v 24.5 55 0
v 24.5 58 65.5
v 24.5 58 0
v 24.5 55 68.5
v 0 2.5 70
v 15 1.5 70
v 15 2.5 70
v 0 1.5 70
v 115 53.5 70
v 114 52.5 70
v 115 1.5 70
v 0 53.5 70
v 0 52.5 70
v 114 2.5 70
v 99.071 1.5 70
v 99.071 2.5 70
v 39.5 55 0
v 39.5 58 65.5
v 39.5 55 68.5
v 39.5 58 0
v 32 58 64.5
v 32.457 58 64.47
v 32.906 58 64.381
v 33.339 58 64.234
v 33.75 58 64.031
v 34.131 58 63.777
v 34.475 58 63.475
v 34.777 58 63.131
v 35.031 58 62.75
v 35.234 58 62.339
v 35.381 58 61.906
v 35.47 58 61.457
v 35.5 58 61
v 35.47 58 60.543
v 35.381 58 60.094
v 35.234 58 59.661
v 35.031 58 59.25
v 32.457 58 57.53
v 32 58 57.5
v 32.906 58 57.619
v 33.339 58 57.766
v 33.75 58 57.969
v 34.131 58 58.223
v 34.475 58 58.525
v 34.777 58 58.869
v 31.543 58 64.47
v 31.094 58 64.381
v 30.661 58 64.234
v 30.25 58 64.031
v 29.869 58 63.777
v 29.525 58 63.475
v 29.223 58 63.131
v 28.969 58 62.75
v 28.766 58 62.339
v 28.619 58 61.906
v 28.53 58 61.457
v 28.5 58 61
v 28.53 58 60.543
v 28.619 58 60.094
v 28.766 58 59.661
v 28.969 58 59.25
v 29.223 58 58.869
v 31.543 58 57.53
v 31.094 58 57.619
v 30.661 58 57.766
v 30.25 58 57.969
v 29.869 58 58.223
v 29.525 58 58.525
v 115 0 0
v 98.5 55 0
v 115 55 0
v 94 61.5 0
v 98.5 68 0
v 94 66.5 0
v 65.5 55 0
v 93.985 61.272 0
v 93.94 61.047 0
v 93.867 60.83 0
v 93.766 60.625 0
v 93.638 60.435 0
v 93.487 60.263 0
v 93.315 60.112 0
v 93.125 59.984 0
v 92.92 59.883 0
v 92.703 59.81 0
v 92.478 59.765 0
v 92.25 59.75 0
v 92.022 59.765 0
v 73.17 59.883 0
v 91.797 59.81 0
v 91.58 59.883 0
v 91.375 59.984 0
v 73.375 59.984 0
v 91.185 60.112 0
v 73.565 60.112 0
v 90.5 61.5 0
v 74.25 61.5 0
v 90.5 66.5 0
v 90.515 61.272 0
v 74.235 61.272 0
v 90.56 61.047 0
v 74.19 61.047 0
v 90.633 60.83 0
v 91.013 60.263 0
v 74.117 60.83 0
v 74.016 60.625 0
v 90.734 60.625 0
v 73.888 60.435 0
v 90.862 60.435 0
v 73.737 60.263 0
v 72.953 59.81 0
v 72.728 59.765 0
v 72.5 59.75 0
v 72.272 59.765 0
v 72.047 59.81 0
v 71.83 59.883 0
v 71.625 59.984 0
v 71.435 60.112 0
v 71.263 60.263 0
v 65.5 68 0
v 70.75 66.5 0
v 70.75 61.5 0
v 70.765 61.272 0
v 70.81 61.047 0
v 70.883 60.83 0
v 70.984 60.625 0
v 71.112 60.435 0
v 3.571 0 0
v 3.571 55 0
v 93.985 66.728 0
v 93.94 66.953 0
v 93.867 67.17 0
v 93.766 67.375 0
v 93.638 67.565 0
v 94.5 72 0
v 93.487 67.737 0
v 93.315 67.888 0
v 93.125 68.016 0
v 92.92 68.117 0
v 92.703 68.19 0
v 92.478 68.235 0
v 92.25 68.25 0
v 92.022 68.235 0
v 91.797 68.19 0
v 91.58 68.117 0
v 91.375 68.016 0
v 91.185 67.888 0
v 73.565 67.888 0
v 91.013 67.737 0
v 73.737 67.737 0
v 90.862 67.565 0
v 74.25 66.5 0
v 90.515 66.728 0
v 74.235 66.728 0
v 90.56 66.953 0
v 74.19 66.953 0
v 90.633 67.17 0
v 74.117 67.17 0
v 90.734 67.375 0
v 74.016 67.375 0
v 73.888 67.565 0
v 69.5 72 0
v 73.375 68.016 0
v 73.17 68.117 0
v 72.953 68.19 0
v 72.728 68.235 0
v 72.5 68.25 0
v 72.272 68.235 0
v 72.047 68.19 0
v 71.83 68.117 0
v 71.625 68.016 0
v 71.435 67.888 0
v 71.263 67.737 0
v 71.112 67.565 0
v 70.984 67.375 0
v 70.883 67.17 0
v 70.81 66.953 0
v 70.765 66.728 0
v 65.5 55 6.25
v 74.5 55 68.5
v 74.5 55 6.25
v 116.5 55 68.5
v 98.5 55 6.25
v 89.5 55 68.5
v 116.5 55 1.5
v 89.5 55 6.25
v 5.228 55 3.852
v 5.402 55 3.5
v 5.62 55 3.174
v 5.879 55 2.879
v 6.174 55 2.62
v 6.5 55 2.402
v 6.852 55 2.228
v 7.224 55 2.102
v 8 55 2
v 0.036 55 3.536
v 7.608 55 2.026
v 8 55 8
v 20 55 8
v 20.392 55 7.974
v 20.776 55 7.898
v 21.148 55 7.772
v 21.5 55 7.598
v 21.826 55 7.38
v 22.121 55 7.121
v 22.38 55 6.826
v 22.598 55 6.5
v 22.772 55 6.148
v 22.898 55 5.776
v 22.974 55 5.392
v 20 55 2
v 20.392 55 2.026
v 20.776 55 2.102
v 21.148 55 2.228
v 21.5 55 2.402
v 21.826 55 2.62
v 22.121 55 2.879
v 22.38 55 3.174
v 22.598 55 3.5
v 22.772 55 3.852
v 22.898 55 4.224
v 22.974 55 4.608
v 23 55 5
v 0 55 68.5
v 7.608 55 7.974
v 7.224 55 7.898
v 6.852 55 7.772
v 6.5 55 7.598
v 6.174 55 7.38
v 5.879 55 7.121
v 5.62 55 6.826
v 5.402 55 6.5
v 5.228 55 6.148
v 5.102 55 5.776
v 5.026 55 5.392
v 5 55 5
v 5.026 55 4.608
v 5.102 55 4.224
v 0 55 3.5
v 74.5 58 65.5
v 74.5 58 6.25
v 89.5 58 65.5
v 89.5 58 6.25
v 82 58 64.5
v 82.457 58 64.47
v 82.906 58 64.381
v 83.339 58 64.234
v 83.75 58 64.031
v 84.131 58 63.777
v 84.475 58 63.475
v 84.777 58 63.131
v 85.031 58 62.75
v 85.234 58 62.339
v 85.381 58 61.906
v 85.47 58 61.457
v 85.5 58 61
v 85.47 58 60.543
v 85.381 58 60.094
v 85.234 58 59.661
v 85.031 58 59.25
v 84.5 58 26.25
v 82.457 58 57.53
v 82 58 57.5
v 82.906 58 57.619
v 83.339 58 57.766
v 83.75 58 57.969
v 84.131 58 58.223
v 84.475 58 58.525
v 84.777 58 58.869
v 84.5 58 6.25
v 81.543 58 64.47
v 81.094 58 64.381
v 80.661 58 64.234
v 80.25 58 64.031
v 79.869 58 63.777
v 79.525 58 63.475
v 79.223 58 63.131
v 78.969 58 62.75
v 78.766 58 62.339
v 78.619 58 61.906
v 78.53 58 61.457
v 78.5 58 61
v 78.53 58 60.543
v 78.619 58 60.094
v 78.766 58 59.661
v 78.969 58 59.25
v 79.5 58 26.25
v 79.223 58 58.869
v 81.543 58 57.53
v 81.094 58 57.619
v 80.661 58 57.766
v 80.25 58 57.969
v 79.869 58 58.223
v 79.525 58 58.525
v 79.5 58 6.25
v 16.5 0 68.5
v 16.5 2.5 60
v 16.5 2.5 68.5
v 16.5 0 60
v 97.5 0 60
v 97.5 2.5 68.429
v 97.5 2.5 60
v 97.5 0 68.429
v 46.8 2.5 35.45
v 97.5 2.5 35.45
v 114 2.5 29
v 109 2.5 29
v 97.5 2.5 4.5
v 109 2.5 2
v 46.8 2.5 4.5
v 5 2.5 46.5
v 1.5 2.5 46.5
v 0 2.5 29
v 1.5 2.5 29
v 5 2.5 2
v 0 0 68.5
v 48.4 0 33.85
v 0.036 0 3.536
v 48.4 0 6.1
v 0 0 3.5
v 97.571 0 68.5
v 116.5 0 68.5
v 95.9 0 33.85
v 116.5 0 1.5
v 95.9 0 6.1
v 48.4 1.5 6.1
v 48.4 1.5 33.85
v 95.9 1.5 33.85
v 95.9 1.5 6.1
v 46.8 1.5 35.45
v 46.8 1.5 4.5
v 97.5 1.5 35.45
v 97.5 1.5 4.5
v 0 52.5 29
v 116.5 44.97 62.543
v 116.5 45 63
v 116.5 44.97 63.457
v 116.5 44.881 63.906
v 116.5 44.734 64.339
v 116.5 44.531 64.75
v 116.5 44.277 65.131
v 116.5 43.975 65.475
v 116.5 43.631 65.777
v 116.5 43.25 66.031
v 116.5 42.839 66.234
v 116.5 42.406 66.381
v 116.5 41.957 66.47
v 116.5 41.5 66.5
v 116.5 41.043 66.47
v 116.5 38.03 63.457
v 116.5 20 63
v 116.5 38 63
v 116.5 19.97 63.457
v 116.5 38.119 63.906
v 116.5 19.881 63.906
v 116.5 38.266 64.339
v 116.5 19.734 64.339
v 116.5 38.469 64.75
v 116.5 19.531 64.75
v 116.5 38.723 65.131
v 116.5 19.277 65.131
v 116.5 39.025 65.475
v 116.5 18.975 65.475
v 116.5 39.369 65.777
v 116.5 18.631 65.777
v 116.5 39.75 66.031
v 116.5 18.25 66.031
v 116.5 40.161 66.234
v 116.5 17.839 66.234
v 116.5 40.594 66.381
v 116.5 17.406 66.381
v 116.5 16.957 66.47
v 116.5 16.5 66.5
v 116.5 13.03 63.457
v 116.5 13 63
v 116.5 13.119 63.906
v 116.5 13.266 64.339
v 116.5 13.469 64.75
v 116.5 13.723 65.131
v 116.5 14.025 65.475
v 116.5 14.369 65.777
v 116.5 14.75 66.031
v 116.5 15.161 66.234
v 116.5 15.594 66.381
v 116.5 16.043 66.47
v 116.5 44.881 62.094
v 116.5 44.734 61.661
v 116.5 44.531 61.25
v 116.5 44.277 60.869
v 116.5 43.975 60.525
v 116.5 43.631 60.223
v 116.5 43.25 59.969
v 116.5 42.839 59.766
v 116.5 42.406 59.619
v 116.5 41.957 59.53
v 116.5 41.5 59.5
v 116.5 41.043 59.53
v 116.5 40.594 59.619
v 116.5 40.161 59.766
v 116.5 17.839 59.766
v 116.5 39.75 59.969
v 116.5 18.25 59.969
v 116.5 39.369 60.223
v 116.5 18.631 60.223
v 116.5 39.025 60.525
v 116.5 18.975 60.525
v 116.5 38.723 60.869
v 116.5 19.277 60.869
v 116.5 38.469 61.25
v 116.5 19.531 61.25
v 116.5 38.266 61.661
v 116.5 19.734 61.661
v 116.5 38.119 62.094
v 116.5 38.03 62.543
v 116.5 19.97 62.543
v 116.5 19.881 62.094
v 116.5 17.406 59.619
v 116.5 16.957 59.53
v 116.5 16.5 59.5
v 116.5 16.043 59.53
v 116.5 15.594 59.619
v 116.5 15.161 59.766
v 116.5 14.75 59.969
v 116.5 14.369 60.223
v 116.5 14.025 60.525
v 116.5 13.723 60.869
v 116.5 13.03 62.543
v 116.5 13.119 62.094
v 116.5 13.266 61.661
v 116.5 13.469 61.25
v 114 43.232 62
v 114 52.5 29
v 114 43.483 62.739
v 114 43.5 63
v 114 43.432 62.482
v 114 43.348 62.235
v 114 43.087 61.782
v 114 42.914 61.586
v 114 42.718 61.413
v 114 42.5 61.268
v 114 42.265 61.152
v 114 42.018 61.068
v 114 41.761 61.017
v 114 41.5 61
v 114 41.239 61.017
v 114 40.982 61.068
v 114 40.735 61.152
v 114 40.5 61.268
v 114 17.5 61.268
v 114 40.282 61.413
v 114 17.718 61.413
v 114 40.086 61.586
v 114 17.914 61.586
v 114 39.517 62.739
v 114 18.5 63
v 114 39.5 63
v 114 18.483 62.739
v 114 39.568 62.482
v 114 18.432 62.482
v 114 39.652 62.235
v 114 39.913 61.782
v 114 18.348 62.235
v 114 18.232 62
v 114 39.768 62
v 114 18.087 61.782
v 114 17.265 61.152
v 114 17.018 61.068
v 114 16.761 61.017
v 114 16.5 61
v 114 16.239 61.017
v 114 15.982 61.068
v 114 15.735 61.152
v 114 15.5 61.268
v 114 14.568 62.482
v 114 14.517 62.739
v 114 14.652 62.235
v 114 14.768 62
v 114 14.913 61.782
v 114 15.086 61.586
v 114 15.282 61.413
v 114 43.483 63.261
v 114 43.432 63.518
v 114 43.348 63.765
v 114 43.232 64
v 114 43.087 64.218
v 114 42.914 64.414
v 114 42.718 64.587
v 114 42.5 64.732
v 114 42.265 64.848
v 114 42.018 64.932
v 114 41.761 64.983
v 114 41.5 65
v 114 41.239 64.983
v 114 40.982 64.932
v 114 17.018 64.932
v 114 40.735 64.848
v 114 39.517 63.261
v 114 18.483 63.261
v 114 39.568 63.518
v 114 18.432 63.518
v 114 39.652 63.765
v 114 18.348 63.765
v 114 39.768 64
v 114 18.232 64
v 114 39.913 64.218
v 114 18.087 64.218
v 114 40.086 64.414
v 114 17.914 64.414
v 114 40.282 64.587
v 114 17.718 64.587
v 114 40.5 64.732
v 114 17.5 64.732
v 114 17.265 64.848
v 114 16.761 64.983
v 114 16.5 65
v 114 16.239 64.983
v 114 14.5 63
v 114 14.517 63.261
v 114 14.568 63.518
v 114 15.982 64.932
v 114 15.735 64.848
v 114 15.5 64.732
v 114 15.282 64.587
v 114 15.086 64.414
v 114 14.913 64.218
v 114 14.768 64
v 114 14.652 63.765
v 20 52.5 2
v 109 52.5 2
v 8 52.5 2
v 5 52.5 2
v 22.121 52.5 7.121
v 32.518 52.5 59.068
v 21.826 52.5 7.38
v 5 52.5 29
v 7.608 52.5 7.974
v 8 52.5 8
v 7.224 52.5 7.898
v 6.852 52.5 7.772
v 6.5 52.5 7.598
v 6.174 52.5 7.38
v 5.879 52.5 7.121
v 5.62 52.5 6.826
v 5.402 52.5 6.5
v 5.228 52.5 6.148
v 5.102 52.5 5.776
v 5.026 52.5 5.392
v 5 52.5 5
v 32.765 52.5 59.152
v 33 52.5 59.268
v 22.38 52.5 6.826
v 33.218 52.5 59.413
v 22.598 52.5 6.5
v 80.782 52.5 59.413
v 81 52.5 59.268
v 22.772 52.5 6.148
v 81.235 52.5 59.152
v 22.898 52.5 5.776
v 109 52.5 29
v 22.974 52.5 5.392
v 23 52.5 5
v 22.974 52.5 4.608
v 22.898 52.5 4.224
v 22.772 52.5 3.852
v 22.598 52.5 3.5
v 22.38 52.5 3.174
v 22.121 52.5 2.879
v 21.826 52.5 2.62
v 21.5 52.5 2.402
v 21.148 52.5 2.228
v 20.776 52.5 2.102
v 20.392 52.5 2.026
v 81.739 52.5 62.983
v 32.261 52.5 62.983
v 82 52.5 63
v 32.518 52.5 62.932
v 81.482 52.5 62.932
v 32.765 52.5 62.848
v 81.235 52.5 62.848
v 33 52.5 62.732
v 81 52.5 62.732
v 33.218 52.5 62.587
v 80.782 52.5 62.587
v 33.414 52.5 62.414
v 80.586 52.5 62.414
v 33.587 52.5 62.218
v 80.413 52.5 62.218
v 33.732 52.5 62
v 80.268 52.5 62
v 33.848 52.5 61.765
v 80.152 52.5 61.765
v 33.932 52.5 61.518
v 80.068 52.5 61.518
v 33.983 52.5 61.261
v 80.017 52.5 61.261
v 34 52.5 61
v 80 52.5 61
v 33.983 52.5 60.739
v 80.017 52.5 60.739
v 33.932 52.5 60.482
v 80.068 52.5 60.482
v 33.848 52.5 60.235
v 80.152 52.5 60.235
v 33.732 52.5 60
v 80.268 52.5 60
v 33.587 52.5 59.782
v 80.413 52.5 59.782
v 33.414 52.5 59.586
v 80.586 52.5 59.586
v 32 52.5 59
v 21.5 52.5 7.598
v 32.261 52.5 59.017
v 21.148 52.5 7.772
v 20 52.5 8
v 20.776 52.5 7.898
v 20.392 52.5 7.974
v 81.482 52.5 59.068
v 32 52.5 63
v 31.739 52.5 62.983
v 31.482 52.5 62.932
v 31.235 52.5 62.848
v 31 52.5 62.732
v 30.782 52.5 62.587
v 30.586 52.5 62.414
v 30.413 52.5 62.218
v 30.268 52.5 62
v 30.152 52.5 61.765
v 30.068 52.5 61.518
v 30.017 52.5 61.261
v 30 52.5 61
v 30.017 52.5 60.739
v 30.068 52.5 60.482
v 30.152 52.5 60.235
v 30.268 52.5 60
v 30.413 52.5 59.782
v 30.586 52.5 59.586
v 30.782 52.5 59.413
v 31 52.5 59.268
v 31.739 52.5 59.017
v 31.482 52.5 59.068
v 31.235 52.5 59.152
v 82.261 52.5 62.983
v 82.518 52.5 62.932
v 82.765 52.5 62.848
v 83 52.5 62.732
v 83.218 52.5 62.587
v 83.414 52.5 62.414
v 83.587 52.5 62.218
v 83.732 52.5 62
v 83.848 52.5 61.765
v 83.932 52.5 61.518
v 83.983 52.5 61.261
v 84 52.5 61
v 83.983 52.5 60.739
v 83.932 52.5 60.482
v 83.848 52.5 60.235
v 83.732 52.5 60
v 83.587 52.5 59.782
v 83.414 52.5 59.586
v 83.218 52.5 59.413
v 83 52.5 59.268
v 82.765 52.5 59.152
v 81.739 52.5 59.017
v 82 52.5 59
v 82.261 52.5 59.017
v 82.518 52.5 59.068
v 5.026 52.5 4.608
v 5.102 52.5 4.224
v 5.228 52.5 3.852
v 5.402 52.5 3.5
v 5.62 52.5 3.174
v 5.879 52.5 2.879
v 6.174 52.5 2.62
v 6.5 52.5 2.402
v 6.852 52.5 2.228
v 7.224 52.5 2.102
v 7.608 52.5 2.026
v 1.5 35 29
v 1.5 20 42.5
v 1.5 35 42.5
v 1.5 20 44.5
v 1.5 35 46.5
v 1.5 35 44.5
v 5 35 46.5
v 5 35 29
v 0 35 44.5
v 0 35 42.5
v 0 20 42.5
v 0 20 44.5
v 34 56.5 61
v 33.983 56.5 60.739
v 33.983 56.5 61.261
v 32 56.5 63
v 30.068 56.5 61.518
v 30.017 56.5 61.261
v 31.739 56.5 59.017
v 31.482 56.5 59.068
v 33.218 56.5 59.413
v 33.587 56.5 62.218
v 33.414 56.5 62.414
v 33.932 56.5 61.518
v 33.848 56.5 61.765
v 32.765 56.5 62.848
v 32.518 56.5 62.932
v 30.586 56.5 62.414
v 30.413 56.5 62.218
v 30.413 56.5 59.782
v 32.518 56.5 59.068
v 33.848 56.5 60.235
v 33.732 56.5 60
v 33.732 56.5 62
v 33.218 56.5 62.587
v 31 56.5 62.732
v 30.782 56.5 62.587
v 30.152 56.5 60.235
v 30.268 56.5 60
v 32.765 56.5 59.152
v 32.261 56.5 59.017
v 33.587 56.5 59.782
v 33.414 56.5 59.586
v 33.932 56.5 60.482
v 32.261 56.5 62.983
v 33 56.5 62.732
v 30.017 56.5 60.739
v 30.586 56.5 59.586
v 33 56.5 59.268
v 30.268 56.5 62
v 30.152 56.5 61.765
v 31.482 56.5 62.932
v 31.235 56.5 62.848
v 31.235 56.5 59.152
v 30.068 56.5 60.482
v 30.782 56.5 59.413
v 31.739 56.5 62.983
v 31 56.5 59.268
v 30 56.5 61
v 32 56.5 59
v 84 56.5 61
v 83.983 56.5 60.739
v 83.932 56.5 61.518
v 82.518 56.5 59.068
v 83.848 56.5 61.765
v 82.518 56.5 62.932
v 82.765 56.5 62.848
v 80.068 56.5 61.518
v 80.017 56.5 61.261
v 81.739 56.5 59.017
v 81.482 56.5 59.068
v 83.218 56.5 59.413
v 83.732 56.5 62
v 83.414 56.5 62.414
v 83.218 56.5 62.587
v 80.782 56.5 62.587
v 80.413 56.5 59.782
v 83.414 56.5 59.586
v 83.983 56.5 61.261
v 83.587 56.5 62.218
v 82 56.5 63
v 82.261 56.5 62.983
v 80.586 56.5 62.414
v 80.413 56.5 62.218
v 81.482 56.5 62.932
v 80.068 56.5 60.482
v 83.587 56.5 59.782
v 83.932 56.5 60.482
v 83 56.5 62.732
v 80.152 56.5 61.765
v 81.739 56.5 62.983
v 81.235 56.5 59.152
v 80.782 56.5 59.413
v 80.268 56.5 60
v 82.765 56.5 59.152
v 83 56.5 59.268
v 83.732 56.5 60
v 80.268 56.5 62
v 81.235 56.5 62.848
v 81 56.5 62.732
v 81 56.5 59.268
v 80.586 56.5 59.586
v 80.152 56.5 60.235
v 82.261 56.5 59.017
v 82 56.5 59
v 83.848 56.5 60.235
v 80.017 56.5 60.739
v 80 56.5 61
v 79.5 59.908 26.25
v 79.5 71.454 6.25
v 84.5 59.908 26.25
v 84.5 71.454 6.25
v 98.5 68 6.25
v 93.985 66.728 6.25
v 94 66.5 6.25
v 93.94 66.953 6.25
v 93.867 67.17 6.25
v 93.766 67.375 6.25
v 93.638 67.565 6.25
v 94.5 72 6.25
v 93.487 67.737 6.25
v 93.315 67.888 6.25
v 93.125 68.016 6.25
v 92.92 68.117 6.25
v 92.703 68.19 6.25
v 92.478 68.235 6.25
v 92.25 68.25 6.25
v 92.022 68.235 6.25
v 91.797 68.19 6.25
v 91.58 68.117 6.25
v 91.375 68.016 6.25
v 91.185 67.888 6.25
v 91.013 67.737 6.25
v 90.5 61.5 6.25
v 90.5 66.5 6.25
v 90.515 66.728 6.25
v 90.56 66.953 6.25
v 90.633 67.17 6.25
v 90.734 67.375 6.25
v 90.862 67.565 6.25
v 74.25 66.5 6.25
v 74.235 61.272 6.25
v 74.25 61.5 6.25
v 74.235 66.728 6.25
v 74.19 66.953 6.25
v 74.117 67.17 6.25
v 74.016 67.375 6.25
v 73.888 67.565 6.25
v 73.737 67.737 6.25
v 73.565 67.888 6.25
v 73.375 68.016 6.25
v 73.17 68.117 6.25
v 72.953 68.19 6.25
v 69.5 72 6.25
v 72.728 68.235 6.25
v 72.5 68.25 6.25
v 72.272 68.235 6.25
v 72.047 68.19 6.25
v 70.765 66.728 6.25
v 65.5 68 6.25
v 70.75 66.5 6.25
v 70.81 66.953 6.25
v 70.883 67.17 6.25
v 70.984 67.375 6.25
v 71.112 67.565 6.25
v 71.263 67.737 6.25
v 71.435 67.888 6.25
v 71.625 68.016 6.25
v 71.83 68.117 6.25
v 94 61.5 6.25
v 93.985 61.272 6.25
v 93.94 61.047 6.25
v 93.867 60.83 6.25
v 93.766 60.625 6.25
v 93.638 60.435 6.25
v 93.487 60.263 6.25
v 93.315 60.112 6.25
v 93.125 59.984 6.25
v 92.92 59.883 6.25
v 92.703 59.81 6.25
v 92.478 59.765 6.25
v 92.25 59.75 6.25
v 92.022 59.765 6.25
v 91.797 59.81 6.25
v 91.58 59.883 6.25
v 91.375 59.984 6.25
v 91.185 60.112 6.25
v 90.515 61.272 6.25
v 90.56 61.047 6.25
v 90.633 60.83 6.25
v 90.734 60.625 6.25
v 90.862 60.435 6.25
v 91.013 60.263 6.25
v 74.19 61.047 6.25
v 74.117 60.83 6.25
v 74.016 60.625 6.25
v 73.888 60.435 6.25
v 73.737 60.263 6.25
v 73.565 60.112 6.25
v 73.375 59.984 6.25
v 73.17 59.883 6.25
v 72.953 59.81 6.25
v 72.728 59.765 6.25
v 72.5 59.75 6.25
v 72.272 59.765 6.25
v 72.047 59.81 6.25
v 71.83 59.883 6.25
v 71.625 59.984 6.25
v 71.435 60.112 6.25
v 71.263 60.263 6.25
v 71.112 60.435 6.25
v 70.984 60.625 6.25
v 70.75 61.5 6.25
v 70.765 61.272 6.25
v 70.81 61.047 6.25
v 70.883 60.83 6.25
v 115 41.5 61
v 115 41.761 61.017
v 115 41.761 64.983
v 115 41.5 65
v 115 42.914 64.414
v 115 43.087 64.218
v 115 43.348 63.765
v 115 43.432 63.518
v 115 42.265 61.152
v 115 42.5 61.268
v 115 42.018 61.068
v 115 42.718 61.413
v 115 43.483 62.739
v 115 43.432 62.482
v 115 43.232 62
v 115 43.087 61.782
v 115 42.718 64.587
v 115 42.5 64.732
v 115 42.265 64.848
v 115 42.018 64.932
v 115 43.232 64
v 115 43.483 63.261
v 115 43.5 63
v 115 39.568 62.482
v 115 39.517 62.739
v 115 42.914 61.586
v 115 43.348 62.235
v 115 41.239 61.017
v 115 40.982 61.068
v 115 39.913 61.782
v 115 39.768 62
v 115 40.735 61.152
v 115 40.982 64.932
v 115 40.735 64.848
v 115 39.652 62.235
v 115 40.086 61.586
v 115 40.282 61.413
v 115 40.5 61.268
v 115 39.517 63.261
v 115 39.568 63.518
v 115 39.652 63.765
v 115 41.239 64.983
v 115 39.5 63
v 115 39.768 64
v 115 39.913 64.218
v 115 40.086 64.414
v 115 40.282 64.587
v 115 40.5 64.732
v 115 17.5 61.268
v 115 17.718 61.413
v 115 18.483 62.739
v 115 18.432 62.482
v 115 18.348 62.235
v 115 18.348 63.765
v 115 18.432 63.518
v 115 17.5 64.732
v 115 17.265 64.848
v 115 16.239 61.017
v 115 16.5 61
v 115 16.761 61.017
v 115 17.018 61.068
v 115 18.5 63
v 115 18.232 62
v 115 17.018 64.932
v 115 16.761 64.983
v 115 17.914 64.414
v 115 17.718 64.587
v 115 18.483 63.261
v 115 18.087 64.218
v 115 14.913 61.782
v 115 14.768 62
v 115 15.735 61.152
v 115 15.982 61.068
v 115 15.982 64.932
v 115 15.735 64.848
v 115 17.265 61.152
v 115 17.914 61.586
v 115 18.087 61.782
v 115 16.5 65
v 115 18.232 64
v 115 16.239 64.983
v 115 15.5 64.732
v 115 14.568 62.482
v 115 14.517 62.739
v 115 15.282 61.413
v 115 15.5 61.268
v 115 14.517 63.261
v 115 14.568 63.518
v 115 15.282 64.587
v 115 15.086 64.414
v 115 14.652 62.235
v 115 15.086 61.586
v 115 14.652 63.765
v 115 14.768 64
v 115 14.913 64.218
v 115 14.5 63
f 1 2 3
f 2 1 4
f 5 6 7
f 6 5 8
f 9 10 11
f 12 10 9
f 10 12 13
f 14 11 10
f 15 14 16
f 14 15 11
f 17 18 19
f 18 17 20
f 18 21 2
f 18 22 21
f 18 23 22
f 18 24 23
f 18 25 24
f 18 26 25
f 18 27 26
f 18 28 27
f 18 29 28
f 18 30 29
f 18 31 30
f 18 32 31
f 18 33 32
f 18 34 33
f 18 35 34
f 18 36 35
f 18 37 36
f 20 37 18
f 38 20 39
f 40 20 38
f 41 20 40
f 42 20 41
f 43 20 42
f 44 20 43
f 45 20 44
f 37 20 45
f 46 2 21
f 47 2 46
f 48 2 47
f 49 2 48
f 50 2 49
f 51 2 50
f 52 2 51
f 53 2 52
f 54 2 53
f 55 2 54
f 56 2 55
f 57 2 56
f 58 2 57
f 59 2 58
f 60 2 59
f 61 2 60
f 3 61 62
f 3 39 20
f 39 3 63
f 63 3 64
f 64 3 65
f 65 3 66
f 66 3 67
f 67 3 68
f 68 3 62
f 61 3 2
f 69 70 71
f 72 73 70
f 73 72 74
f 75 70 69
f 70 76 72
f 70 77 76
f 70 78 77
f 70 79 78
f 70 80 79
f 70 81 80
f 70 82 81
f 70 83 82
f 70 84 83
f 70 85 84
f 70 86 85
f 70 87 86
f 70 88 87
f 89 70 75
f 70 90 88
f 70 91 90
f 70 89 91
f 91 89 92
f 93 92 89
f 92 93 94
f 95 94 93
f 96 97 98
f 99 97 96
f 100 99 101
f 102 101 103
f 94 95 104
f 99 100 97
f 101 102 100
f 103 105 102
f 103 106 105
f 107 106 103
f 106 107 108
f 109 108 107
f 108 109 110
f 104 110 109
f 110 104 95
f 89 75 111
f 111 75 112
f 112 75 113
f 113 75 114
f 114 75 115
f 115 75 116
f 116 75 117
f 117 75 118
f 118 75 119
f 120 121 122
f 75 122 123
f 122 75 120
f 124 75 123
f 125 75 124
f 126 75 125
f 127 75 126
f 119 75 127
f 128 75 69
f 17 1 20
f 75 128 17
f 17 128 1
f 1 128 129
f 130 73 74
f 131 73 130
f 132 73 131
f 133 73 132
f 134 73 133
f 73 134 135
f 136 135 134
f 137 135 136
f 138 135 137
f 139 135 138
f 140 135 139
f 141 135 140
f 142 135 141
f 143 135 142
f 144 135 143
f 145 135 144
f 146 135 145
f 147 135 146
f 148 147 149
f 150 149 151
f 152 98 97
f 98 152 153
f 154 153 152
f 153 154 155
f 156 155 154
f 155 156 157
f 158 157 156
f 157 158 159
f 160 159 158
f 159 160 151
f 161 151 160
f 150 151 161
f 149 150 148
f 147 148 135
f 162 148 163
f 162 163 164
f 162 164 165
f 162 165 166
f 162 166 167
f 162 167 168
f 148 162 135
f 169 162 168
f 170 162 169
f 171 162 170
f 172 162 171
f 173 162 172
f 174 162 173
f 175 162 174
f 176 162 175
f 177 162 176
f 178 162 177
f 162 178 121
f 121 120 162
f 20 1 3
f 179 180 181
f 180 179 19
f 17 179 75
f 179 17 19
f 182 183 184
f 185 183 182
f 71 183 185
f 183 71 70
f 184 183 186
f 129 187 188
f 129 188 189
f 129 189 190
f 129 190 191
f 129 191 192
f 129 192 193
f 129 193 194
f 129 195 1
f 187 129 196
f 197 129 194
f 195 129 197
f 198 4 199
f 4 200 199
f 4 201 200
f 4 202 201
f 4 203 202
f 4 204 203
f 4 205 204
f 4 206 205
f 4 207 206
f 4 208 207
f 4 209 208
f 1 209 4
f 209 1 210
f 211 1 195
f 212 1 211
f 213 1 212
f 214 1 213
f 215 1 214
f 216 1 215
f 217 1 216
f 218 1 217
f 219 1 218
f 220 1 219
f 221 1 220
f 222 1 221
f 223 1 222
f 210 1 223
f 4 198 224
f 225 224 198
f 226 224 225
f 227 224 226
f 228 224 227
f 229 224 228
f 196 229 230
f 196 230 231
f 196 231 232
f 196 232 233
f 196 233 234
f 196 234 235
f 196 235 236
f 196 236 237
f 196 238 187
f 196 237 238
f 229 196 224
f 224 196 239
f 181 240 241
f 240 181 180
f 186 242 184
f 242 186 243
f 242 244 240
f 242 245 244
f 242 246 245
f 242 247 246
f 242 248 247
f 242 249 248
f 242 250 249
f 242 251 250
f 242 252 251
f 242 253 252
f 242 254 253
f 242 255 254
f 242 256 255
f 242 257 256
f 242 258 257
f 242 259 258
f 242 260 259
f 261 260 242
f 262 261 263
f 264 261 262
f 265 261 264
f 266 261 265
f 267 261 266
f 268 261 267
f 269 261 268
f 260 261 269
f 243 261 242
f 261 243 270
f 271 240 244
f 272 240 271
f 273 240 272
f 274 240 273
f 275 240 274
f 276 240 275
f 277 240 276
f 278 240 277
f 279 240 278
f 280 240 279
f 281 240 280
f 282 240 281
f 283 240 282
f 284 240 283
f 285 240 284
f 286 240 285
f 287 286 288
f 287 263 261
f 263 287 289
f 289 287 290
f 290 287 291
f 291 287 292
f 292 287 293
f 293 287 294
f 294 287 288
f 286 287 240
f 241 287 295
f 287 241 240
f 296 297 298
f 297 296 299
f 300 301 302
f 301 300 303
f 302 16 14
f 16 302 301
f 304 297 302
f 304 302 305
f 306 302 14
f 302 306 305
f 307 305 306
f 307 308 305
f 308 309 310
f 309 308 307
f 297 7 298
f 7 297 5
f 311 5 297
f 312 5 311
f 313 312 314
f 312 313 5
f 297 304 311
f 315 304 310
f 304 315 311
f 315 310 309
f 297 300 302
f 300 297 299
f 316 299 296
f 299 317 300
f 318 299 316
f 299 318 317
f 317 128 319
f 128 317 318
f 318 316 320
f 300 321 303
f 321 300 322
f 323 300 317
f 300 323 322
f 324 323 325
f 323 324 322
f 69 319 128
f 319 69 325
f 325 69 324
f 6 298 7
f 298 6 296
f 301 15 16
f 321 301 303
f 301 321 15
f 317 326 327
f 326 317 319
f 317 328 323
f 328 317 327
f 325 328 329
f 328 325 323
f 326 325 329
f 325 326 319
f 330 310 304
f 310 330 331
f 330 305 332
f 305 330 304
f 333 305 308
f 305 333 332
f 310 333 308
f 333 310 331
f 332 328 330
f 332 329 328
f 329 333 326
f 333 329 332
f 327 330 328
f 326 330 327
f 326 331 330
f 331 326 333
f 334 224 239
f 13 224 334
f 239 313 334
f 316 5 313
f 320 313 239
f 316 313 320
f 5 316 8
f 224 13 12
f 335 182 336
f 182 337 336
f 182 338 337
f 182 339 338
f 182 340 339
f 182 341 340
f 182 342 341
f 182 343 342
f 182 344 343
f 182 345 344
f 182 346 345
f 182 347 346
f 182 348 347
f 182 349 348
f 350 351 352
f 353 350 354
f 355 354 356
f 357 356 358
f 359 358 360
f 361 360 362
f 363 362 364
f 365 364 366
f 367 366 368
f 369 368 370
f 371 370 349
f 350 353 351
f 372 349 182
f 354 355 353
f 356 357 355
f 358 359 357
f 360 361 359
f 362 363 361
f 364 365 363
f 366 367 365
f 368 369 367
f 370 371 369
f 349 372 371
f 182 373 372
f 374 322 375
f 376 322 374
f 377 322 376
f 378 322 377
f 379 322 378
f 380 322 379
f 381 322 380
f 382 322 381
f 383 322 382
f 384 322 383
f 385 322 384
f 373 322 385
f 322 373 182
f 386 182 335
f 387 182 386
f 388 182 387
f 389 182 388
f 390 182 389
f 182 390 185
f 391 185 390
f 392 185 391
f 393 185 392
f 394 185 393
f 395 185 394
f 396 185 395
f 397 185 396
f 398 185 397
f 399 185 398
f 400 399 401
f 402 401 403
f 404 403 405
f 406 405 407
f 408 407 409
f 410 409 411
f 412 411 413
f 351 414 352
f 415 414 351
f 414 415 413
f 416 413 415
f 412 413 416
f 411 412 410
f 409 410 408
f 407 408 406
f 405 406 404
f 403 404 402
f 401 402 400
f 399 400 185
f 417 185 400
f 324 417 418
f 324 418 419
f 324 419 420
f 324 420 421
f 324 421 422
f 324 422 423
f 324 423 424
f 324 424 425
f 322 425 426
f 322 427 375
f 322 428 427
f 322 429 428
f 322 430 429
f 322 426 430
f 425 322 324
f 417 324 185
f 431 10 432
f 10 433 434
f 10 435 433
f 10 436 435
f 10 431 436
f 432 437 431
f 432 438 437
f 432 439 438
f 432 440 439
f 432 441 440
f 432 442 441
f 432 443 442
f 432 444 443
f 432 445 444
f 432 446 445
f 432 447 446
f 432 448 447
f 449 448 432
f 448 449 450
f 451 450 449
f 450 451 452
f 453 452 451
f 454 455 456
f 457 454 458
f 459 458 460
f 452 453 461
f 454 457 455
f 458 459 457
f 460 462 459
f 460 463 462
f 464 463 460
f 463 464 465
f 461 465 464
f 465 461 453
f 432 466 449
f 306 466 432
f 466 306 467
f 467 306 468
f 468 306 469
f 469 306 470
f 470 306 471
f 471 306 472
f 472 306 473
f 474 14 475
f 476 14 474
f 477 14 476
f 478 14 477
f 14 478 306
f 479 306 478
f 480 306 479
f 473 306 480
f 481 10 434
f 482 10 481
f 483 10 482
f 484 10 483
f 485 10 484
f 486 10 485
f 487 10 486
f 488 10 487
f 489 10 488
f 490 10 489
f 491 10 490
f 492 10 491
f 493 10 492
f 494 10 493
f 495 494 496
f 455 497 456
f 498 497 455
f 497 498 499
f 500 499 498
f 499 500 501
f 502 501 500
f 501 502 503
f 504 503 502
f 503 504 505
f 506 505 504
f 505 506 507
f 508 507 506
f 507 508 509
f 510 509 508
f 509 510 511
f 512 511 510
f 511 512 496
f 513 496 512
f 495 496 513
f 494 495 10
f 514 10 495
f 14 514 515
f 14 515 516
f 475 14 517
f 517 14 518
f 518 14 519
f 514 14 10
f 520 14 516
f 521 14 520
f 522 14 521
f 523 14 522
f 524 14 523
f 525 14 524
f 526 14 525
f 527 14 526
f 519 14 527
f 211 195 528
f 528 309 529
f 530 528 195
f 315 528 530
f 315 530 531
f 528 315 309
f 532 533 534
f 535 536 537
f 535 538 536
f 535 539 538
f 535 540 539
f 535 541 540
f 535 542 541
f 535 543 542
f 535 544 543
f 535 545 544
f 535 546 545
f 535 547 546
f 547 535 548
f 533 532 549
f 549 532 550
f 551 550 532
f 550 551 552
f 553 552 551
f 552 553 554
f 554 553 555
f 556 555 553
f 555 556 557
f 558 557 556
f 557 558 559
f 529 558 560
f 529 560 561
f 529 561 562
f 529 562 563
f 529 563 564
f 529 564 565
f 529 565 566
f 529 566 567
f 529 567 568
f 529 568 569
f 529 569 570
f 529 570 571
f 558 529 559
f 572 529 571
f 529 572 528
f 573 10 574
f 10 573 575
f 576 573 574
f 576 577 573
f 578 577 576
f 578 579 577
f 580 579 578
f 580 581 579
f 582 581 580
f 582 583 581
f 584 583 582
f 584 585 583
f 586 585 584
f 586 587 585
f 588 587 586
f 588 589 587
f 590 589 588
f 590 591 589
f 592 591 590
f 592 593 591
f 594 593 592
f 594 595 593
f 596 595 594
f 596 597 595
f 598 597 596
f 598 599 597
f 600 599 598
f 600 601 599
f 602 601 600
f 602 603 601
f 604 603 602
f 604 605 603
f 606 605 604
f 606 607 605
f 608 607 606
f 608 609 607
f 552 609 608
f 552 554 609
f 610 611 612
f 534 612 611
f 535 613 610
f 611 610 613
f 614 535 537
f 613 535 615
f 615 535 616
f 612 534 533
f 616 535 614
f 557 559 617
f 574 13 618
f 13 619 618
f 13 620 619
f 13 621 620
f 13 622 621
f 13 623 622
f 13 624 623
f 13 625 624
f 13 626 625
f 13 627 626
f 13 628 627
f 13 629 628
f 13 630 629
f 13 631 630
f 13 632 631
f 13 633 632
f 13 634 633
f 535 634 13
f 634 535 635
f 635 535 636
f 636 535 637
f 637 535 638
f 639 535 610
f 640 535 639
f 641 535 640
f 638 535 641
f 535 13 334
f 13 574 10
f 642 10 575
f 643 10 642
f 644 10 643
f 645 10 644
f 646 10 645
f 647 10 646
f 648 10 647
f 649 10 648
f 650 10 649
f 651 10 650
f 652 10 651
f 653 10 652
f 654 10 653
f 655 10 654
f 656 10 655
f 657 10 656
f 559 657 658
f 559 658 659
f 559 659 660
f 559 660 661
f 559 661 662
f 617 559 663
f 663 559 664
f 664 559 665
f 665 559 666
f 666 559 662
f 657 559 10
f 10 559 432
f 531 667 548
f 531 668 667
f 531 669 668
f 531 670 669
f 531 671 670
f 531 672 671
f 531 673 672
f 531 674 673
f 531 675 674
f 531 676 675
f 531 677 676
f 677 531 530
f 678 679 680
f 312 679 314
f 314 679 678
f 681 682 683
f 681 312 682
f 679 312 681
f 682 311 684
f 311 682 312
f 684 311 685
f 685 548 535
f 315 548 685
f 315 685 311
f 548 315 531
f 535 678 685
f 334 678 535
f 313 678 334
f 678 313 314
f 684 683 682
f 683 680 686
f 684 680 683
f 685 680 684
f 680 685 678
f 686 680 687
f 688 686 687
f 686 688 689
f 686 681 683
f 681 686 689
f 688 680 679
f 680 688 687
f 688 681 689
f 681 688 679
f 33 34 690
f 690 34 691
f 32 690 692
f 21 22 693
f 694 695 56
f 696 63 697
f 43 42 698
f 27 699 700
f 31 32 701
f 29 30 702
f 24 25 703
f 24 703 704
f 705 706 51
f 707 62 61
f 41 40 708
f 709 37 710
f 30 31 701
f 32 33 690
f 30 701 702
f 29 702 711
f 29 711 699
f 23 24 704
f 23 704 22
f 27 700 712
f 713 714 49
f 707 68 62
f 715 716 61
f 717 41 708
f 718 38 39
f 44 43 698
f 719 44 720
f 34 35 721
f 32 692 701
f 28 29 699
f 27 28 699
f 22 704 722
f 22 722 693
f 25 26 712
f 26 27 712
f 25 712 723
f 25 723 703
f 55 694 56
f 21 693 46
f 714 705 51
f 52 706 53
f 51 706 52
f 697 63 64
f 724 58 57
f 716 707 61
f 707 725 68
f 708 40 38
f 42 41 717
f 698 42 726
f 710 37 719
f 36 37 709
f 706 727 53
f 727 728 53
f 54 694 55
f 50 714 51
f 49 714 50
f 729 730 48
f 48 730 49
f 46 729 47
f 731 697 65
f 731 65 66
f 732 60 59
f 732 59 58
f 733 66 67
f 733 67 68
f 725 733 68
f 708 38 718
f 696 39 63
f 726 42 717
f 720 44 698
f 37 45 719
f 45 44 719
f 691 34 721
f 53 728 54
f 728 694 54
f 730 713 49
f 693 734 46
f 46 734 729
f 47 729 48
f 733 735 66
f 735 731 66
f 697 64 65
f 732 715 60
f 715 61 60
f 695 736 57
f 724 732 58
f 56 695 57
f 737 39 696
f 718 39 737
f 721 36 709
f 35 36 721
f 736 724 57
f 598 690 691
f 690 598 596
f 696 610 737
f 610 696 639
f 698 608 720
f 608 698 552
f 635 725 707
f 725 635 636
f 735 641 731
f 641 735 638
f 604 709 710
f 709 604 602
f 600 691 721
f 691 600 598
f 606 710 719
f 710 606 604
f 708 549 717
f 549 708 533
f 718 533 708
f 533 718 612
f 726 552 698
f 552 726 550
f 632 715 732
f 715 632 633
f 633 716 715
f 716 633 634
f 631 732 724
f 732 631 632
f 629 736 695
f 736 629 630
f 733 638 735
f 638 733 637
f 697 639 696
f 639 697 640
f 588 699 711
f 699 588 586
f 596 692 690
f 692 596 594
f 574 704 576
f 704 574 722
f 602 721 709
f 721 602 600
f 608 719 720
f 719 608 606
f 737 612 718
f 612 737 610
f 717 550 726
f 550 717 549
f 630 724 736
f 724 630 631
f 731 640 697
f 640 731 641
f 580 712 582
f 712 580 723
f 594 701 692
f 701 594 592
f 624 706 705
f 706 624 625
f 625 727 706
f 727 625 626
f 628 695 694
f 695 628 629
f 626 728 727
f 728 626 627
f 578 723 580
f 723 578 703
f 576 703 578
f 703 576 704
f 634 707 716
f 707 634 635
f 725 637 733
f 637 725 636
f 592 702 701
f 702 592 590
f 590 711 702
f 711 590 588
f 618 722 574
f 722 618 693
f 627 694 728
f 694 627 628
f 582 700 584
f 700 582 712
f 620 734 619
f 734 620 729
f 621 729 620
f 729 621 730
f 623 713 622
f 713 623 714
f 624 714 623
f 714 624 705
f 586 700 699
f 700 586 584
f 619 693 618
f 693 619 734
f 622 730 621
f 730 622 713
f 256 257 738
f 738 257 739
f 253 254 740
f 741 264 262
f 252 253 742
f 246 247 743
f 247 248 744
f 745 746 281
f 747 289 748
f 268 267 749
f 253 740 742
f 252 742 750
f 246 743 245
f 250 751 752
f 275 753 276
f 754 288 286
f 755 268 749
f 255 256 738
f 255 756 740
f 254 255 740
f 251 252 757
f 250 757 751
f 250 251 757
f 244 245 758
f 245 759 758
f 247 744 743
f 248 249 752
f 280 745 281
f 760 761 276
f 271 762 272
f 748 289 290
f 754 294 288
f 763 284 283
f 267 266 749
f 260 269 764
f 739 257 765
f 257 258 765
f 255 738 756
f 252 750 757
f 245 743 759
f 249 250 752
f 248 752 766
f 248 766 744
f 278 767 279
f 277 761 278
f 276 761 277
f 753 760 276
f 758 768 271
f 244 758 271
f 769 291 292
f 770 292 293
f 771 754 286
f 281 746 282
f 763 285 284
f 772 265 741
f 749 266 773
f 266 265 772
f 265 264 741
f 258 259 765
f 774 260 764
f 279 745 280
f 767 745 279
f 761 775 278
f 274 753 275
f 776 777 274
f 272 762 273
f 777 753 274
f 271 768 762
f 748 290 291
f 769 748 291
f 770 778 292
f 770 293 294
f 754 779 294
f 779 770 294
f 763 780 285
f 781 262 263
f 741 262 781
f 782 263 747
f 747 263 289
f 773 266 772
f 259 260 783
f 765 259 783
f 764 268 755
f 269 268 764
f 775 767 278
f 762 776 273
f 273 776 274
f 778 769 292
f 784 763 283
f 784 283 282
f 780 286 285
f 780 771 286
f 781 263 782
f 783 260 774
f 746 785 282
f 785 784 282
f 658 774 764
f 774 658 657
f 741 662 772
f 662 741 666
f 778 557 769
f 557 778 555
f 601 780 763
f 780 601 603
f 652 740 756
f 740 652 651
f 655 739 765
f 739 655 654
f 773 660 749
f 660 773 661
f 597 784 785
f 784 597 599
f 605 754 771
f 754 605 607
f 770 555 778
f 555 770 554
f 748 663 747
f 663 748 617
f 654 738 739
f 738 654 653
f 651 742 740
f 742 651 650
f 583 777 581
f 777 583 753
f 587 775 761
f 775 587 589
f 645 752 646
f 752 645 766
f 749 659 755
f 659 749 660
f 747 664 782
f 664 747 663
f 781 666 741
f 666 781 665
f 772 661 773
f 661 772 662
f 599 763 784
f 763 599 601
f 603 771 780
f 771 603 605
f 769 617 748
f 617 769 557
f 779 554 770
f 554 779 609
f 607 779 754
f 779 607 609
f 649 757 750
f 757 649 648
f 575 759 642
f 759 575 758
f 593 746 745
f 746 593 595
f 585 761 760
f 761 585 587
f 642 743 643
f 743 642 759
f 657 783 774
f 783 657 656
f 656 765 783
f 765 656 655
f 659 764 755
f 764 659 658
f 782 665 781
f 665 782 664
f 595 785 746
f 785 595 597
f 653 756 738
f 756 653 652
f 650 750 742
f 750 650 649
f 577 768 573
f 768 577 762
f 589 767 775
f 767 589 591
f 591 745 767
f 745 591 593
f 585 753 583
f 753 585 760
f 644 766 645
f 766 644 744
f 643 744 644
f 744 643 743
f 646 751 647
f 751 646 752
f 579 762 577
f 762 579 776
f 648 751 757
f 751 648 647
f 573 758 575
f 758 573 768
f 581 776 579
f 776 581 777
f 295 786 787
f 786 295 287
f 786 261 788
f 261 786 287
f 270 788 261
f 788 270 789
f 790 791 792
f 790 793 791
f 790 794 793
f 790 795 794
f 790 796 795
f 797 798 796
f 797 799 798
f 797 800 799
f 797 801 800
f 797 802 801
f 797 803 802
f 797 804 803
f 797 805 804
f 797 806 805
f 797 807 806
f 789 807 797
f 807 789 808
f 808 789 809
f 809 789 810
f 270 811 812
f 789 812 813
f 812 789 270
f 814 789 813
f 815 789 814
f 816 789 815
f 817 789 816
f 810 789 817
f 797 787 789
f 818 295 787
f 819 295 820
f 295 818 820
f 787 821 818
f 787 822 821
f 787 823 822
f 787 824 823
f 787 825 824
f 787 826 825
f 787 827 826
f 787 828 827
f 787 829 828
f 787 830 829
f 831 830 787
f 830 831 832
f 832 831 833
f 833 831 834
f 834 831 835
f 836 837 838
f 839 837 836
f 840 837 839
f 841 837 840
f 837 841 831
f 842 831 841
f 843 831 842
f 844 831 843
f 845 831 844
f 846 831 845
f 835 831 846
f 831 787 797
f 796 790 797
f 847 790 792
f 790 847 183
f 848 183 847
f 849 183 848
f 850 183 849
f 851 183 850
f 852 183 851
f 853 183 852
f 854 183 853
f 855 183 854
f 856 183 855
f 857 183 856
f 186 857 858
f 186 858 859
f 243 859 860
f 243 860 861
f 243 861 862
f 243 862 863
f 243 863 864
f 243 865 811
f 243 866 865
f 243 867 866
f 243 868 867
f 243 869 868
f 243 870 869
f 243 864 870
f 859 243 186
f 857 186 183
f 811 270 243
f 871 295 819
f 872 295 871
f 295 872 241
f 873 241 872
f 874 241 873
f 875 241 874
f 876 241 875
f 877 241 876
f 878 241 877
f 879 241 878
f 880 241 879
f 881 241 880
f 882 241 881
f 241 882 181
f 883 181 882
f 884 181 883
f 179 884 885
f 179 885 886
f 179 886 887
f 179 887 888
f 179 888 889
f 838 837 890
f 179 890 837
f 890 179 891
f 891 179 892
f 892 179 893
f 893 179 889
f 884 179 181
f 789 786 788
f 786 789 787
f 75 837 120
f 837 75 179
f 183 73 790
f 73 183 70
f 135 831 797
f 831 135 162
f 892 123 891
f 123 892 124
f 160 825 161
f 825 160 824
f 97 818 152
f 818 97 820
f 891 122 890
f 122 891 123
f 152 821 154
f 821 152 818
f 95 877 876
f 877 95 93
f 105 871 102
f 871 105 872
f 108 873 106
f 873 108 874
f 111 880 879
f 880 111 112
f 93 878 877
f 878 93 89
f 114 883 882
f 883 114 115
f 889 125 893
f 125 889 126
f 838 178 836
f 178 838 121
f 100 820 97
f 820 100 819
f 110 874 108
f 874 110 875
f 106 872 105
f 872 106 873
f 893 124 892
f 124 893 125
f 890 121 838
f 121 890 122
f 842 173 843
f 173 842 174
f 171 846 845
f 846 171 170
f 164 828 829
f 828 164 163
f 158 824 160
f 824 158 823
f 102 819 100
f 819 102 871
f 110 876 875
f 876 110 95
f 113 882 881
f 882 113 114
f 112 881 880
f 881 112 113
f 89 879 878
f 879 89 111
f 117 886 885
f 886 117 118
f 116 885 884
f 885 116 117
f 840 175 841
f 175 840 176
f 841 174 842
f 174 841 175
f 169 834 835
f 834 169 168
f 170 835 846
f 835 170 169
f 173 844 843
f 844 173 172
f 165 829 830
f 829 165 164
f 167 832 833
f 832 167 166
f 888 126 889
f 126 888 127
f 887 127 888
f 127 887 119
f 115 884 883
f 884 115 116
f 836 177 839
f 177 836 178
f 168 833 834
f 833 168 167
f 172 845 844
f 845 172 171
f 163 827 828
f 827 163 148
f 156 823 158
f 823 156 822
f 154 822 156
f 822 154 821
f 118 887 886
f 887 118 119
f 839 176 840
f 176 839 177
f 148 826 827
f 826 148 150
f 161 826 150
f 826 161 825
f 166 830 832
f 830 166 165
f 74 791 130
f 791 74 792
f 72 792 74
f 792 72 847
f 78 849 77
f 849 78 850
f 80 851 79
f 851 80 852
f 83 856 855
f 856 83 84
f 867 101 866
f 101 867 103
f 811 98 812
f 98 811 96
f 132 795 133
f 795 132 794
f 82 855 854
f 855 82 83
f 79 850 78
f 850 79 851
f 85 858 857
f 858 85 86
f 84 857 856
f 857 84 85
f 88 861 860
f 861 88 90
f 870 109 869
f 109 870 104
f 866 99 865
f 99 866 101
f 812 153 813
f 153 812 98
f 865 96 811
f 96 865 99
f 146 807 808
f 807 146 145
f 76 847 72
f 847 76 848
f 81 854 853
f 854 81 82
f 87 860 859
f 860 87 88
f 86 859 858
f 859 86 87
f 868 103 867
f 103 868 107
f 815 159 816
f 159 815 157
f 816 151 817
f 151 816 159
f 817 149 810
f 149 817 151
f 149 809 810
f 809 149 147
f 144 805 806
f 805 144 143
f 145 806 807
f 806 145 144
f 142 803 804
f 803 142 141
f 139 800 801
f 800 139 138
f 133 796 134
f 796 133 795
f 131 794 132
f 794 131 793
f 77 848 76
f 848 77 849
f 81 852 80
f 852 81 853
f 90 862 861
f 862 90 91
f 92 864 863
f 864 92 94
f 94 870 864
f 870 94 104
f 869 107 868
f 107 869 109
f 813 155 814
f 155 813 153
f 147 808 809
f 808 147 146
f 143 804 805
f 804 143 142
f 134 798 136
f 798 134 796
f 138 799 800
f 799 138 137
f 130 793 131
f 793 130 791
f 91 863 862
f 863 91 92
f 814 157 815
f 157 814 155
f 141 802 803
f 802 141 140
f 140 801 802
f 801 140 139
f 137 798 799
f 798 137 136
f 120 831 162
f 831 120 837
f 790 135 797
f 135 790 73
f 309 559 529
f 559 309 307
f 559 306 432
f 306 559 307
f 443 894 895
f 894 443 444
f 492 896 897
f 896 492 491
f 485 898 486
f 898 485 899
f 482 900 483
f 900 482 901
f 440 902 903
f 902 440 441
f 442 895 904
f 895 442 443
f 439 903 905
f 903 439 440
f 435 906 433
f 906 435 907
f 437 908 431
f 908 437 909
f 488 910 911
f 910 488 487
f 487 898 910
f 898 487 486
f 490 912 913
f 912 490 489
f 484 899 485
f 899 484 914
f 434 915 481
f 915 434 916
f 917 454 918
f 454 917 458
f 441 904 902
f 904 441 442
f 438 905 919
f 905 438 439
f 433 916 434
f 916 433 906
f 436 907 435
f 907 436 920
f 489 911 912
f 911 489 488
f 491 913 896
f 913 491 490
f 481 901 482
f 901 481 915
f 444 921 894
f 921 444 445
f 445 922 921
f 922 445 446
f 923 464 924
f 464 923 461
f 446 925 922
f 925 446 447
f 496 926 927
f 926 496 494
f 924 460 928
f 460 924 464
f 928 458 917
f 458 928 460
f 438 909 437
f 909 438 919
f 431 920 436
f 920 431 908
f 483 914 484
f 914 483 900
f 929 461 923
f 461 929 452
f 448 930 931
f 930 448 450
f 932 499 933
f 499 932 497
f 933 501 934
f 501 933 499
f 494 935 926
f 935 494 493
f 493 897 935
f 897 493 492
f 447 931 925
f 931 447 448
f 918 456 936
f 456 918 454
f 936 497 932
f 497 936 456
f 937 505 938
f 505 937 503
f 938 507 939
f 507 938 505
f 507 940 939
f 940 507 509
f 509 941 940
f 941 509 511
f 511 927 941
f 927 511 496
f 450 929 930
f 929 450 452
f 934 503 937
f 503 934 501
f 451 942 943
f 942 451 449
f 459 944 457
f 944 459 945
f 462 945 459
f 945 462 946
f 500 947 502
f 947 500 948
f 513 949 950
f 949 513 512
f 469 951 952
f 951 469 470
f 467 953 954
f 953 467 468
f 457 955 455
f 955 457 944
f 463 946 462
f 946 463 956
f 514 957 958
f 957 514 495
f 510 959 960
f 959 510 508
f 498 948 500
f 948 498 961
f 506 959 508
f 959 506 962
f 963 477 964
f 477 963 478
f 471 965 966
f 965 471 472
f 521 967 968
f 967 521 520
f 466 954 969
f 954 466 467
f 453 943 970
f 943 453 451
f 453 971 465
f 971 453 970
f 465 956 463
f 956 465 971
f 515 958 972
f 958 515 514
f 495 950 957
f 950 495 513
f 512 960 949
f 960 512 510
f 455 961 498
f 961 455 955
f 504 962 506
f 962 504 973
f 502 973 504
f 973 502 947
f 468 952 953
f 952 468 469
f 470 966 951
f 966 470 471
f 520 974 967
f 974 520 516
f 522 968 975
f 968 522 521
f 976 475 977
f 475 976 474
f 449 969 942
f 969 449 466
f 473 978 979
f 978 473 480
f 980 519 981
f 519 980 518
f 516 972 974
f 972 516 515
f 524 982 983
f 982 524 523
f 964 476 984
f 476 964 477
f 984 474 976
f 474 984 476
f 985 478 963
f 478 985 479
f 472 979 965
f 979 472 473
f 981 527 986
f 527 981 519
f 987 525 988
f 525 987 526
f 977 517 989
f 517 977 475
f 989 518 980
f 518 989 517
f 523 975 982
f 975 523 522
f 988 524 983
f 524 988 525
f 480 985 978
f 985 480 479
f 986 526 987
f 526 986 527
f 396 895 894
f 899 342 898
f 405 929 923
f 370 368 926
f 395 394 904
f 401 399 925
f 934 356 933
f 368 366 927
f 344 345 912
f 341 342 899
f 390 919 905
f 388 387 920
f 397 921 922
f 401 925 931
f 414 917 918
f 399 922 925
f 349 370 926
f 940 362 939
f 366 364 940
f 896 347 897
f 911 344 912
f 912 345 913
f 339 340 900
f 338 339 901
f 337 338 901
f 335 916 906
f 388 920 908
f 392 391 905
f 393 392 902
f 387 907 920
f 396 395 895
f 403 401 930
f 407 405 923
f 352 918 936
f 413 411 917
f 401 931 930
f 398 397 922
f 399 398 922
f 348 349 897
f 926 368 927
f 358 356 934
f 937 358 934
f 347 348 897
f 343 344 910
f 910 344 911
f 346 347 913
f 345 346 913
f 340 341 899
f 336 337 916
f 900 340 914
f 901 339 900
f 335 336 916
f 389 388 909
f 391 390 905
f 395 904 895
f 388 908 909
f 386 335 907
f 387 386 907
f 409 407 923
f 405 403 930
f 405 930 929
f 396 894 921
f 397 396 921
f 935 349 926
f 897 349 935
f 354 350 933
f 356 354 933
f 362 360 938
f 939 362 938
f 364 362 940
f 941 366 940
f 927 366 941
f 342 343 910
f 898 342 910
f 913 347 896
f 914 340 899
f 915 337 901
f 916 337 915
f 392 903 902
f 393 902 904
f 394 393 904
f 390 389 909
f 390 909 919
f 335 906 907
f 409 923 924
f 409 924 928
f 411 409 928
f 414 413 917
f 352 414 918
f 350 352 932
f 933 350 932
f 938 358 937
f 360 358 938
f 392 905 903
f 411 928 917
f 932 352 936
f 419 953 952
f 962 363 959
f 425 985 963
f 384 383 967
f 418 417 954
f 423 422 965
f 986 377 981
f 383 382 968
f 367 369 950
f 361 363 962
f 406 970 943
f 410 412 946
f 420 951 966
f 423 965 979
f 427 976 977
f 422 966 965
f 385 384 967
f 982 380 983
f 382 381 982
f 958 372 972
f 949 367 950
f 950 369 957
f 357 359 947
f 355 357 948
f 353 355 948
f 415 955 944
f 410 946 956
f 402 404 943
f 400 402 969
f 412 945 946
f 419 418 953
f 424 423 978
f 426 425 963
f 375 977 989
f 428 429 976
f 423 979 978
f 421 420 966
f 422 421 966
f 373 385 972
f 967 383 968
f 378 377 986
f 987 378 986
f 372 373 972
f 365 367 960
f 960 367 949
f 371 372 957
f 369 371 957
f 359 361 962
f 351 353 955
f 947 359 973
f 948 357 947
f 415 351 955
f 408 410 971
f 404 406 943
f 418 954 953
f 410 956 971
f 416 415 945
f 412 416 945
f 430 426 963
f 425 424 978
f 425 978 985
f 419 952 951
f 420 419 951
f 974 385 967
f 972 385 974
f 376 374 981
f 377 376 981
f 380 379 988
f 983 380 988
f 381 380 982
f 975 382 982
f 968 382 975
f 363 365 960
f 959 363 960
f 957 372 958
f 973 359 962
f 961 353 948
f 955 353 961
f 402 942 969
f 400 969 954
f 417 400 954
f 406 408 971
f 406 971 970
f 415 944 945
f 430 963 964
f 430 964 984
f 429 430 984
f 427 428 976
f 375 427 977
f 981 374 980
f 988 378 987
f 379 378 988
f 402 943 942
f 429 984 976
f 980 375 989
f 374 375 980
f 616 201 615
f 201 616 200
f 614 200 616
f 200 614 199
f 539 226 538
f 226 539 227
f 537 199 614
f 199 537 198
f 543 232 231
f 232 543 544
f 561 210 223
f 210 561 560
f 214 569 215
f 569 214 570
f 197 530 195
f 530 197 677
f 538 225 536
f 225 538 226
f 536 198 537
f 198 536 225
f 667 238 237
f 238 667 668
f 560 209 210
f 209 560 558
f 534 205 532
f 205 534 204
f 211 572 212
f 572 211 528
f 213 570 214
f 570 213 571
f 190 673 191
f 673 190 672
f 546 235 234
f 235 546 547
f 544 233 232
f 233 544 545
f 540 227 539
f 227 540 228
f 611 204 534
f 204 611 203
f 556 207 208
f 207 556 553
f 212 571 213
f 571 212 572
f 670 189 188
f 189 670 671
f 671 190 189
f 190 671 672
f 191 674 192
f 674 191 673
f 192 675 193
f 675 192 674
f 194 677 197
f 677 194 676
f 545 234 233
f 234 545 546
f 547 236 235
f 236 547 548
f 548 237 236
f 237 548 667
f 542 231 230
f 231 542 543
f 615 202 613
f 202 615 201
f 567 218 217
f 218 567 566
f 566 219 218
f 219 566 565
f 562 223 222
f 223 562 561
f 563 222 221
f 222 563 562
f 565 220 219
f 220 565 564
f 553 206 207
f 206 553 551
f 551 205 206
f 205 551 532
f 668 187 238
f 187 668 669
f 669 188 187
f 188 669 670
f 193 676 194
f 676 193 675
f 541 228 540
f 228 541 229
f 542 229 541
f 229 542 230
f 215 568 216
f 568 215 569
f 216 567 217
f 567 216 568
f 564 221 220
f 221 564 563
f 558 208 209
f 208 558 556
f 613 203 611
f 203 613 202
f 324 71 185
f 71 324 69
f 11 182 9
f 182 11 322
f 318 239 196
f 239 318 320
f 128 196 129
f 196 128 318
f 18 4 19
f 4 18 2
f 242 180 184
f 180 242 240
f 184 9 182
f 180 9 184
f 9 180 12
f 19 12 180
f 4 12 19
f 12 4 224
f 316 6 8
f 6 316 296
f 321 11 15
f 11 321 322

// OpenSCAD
cover_height = 70; // mm

bottom_thickness = 2; //mm
wall_thickness = 2.5; //mm

vent_tab_bottom = 13.5; //mm measured bottom edge of PSU to vent hole;
vent_tab_height = 2; //mm measured opening of the vents (Actual was 2.99, but I want some 'room').
vent_tab_width = 15; // mm Can be smaller than the width of the vent on the PSU.
vent_cutout = 1; // 1 = yes, 0 = no.

// PSU dimensions
psu_width = 114; //mm
psu_depth = 50; //mm
psu_height = 215; //mm
psu_steel_thickness = 1.5; //mm measured thickness of the steel on the side by the frame.

psu_vent_from_edge = 16.5; //mm mesured along the width - how far the PSU vent holes start from the edge of the PSU.
psu_vent_from_bottom = 31; // mm measured from the bottom edge of the PSU.
psu_mount_hole_from_bottom = 30; //mm measured from bottom edge of the PSU to bottom of the hole.

// IEC Socket cutout
iec_socket_width = 47.5; //mm
iec_socket_height = 27.75; //mm

iec_socket_lip = 1.6; // mm - The amount of 'overhang' on the front 'lip' of the IEC socket. Used to visually line up the IEC with the cutout for the ventilation.
iec_socket_lip_wall_thickness = 1.5; //mm  wall-thickness required for socket to 'snap' into place.

// How high up the "shelf" that the PSU sits on is from the bottom of the shroud.
shelf_height = 27;

// Support bracket.
module support_bracket() {
    color("purple") {
        intersection() {
            translate([14, 0, 6.25]) cube([5, 17, 20]); 
            translate([14, 0, (19 / 2)+ 6.25]) rotate([180, 0, 0]) rotate([0, 90, 0]) cylinder(h = 6.25, r = 19, $fn = 3);
        }
        
        difference() {
            cube([33, 17, 6.25]);
            
            translate([7,0,0])
            hull() {
                translate([0, 6.5, 0]) cylinder(r = 1.75, h = 6.25, $fn = 48);
                translate([0, 11.5, 0]) cylinder(r = 1.75, h = 6.25, $fn = 48);
            }
            
            translate([26.75, 0, 0])
            hull() {
                translate([0, 6.5, 0]) cylinder(r = 1.75, h = 6.25, $fn = 48);
                translate([0, 11.5, 0]) cylinder(r = 1.75, h = 6.25, $fn = 48);
            }
            translate([0, 13, 0]) rotate([0, 0, 45]) cube([10, 10, 6.25]);
            translate([33, 13, 0]) rotate([0, 0, 45]) cube([10, 10, 6.25]);
        }
    }
}

difference() {
    union() {
        difference() {
            // Main cubic area of the base.
            color("blue")
            cube([psu_width + wall_thickness, psu_depth + (wall_thickness * 2), cover_height]);
            
            // Create the main hollow for the PSU.
            color("red")
            translate([0, wall_thickness, bottom_thickness])
            cube([psu_width, psu_depth, psu_height]);
            
            if (vent_cutout == 1) {
                // Create the cutout for the PSU vents on the width.
                color("red")
                translate([psu_vent_from_edge, 0, bottom_thickness + shelf_height + psu_vent_from_bottom])
                cube([psu_width - (psu_vent_from_edge * 2), wall_thickness, cover_height - (bottom_thickness + shelf_height + psu_vent_from_bottom)]);
                
                translate([psu_vent_from_edge - 1.5, 0, cover_height]) rotate([0, 45, 0]) cube([5, wall_thickness, 5]);
                translate([psu_width - psu_vent_from_edge - 5.5, 0, cover_height]) rotate([0, 45, 0]) cube([5, wall_thickness, 5]);
            }
            
            // IEC Cutout.
            color("green") {
                translate([psu_width - psu_vent_from_edge - iec_socket_lip - iec_socket_width, 0, bottom_thickness + iec_socket_lip + 2.5])
                cube([iec_socket_width, wall_thickness, iec_socket_height]);
                // Ensure the wall thickness behind the IEC lip is only as thick as specified.
                translate([psu_width - psu_vent_from_edge - (iec_socket_lip  * 2)- iec_socket_width, 
                                   iec_socket_lip_wall_thickness, 
                                   bottom_thickness + 2.5])
                 cube([iec_socket_width + (iec_socket_lip * 2), wall_thickness, iec_socket_height + (iec_socket_lip * 2)]);
            }
        }

        // Add the wall beneath the PSU on the frame-side.
        translate([0, wall_thickness, bottom_thickness]) 
        cube([wall_thickness * 2, psu_depth, shelf_height]);

        // Shelf on the Socket side.
        translate([psu_width - (wall_thickness * 2), wall_thickness, bottom_thickness])
        cube([wall_thickness * 2, psu_depth, shelf_height]);

        // Add the partial wall and vent tab
        color("orange") {
        translate([psu_steel_thickness, wall_thickness, bottom_thickness + shelf_height])
        cube([(wall_thickness * 2) - psu_steel_thickness, (psu_depth / 2) + (vent_tab_width / 2), vent_tab_bottom + (2 * vent_tab_height)]);
        translate([0, wall_thickness + (psu_depth / 2) - (vent_tab_width / 2), bottom_thickness + shelf_height + vent_tab_bottom])
        cube([psu_steel_thickness, vent_tab_width, vent_tab_height]);
            
        } 

        // Vertical Support Columns (mount holes are typically 50mm on center, centered in the PSU, with radius 2)
        color("black") {
            // Supports are 15mm wide: 7.5's derive from that.
            translate([(psu_width / 2) - 25 - 7.5, psu_depth + (wall_thickness * 2), 0])
            cube([15, 3, cover_height]);
            
            translate([(psu_width / 2) + 25 - 7.5, psu_depth + (wall_thickness * 2), 0])
            cube([15, 3, cover_height]);
        }

        translate([(psu_width / 2) + 25 - (33 / 2), psu_depth + (wall_thickness * 2), 0]) support_bracket();
    }

    // Vertical Support rear mount holes & counter sink
    color("black") {
        translate([(psu_width / 2) - 25, psu_depth + (wall_thickness * 2) + 3 - 1.5, bottom_thickness + shelf_height + psu_mount_hole_from_bottom + 2]) rotate([-90, 0, 0]) cylinder(r2 = 3.5, r1 = 2, h = 1.5, $fn = 48);
        translate([(psu_width / 2) - 25, psu_depth + wall_thickness - 1, bottom_thickness + shelf_height + psu_mount_hole_from_bottom + 2]) rotate([-90, 0, 0]) cylinder(r = 2, h = wall_thickness + 5, $fn = 48);
        
        translate([(psu_width / 2) + 25, psu_depth + (wall_thickness * 2) + 3 - 1.5, bottom_thickness + shelf_height + psu_mount_hole_from_bottom + 2]) rotate([-90, 0, 0]) cylinder(r2 = 3.5, r1 = 2, h = 1.5, $fn = 48);
        translate([(psu_width / 2) + 25, psu_depth + wall_thickness - 1, bottom_thickness + shelf_height + psu_mount_hole_from_bottom + 2]) rotate([-90, 0, 0]) cylinder(r = 2, h = wall_thickness + 5, $fn = 48);
    }
    
    // Mount holes on the end away from the frame.
    // 25mm centers 11mm from the 'back' of the PSU.
    translate([psu_width - 1, wall_thickness  + psu_depth - 11, bottom_thickness + shelf_height + 30 + 4]) rotate([0, 90, 0]) cylinder(r = 2, h = 5, $fn = 48);
    translate([psu_width - 1, wall_thickness + psu_depth - 11 -25, bottom_thickness + shelf_height + 30 + 4]) rotate([0, 90, 0]) cylinder(r = 2, h = 5, $fn = 48);
    translate([psu_width + wall_thickness - 1.5, wall_thickness + psu_depth - 11, bottom_thickness + shelf_height + 30 + 4]) rotate([0, 90, 0]) cylinder(r1 = 2, r2 = 3.5, h = 1.5, $fn = 48);
    translate([psu_width + wall_thickness - 1.5, wall_thickness + psu_depth - 11 -25, bottom_thickness + shelf_height + 30 + 4]) rotate([0, 90, 0]) cylinder(r = 2, r2 = 3.5, h = 1.5, $fn = 48);
    
    translate([wall_thickness * 2+ 3, psu_depth + wall_thickness, bottom_thickness + 3])
    {
        hull() {
            translate([0, wall_thickness, 0]) rotate([90, 0, 0]) cylinder(r = 3, h = wall_thickness, $fn = 48);
            translate([12, wall_thickness, 0]) rotate([90, 0, 0]) cylinder(r = 3, h = wall_thickness, $fn = 48);
        }
    }
    
    // Pretty corner on the bottom & top.
    translate([psu_width + wall_thickness - 1.5, 0, 0]) rotate([0, 45, 0]) cube([5, psu_depth + (wall_thickness * 2), 5]);
    translate([psu_width + wall_thickness - 1.5, 0, cover_height]) rotate([0, 45, 0]) cube([5, psu_depth + (wall_thickness * 2), 5]);
    translate([-3.5, 0, 0]) rotate([0, 45, 0]) cube([5, psu_depth + (wall_thickness * 2), 5]);
    // Pretty corner for the back top.
    translate([0, psu_depth + (2 * wall_thickness) + 3, cover_height - 4.5]) rotate([45, 0, 0]) cube([psu_width + wall_thickness, 5, 7]);
    translate([0, 0, cover_height - 1.5]) rotate([45, 0, 0]) cube([psu_width + wall_thickness, 5, 5]);
}
